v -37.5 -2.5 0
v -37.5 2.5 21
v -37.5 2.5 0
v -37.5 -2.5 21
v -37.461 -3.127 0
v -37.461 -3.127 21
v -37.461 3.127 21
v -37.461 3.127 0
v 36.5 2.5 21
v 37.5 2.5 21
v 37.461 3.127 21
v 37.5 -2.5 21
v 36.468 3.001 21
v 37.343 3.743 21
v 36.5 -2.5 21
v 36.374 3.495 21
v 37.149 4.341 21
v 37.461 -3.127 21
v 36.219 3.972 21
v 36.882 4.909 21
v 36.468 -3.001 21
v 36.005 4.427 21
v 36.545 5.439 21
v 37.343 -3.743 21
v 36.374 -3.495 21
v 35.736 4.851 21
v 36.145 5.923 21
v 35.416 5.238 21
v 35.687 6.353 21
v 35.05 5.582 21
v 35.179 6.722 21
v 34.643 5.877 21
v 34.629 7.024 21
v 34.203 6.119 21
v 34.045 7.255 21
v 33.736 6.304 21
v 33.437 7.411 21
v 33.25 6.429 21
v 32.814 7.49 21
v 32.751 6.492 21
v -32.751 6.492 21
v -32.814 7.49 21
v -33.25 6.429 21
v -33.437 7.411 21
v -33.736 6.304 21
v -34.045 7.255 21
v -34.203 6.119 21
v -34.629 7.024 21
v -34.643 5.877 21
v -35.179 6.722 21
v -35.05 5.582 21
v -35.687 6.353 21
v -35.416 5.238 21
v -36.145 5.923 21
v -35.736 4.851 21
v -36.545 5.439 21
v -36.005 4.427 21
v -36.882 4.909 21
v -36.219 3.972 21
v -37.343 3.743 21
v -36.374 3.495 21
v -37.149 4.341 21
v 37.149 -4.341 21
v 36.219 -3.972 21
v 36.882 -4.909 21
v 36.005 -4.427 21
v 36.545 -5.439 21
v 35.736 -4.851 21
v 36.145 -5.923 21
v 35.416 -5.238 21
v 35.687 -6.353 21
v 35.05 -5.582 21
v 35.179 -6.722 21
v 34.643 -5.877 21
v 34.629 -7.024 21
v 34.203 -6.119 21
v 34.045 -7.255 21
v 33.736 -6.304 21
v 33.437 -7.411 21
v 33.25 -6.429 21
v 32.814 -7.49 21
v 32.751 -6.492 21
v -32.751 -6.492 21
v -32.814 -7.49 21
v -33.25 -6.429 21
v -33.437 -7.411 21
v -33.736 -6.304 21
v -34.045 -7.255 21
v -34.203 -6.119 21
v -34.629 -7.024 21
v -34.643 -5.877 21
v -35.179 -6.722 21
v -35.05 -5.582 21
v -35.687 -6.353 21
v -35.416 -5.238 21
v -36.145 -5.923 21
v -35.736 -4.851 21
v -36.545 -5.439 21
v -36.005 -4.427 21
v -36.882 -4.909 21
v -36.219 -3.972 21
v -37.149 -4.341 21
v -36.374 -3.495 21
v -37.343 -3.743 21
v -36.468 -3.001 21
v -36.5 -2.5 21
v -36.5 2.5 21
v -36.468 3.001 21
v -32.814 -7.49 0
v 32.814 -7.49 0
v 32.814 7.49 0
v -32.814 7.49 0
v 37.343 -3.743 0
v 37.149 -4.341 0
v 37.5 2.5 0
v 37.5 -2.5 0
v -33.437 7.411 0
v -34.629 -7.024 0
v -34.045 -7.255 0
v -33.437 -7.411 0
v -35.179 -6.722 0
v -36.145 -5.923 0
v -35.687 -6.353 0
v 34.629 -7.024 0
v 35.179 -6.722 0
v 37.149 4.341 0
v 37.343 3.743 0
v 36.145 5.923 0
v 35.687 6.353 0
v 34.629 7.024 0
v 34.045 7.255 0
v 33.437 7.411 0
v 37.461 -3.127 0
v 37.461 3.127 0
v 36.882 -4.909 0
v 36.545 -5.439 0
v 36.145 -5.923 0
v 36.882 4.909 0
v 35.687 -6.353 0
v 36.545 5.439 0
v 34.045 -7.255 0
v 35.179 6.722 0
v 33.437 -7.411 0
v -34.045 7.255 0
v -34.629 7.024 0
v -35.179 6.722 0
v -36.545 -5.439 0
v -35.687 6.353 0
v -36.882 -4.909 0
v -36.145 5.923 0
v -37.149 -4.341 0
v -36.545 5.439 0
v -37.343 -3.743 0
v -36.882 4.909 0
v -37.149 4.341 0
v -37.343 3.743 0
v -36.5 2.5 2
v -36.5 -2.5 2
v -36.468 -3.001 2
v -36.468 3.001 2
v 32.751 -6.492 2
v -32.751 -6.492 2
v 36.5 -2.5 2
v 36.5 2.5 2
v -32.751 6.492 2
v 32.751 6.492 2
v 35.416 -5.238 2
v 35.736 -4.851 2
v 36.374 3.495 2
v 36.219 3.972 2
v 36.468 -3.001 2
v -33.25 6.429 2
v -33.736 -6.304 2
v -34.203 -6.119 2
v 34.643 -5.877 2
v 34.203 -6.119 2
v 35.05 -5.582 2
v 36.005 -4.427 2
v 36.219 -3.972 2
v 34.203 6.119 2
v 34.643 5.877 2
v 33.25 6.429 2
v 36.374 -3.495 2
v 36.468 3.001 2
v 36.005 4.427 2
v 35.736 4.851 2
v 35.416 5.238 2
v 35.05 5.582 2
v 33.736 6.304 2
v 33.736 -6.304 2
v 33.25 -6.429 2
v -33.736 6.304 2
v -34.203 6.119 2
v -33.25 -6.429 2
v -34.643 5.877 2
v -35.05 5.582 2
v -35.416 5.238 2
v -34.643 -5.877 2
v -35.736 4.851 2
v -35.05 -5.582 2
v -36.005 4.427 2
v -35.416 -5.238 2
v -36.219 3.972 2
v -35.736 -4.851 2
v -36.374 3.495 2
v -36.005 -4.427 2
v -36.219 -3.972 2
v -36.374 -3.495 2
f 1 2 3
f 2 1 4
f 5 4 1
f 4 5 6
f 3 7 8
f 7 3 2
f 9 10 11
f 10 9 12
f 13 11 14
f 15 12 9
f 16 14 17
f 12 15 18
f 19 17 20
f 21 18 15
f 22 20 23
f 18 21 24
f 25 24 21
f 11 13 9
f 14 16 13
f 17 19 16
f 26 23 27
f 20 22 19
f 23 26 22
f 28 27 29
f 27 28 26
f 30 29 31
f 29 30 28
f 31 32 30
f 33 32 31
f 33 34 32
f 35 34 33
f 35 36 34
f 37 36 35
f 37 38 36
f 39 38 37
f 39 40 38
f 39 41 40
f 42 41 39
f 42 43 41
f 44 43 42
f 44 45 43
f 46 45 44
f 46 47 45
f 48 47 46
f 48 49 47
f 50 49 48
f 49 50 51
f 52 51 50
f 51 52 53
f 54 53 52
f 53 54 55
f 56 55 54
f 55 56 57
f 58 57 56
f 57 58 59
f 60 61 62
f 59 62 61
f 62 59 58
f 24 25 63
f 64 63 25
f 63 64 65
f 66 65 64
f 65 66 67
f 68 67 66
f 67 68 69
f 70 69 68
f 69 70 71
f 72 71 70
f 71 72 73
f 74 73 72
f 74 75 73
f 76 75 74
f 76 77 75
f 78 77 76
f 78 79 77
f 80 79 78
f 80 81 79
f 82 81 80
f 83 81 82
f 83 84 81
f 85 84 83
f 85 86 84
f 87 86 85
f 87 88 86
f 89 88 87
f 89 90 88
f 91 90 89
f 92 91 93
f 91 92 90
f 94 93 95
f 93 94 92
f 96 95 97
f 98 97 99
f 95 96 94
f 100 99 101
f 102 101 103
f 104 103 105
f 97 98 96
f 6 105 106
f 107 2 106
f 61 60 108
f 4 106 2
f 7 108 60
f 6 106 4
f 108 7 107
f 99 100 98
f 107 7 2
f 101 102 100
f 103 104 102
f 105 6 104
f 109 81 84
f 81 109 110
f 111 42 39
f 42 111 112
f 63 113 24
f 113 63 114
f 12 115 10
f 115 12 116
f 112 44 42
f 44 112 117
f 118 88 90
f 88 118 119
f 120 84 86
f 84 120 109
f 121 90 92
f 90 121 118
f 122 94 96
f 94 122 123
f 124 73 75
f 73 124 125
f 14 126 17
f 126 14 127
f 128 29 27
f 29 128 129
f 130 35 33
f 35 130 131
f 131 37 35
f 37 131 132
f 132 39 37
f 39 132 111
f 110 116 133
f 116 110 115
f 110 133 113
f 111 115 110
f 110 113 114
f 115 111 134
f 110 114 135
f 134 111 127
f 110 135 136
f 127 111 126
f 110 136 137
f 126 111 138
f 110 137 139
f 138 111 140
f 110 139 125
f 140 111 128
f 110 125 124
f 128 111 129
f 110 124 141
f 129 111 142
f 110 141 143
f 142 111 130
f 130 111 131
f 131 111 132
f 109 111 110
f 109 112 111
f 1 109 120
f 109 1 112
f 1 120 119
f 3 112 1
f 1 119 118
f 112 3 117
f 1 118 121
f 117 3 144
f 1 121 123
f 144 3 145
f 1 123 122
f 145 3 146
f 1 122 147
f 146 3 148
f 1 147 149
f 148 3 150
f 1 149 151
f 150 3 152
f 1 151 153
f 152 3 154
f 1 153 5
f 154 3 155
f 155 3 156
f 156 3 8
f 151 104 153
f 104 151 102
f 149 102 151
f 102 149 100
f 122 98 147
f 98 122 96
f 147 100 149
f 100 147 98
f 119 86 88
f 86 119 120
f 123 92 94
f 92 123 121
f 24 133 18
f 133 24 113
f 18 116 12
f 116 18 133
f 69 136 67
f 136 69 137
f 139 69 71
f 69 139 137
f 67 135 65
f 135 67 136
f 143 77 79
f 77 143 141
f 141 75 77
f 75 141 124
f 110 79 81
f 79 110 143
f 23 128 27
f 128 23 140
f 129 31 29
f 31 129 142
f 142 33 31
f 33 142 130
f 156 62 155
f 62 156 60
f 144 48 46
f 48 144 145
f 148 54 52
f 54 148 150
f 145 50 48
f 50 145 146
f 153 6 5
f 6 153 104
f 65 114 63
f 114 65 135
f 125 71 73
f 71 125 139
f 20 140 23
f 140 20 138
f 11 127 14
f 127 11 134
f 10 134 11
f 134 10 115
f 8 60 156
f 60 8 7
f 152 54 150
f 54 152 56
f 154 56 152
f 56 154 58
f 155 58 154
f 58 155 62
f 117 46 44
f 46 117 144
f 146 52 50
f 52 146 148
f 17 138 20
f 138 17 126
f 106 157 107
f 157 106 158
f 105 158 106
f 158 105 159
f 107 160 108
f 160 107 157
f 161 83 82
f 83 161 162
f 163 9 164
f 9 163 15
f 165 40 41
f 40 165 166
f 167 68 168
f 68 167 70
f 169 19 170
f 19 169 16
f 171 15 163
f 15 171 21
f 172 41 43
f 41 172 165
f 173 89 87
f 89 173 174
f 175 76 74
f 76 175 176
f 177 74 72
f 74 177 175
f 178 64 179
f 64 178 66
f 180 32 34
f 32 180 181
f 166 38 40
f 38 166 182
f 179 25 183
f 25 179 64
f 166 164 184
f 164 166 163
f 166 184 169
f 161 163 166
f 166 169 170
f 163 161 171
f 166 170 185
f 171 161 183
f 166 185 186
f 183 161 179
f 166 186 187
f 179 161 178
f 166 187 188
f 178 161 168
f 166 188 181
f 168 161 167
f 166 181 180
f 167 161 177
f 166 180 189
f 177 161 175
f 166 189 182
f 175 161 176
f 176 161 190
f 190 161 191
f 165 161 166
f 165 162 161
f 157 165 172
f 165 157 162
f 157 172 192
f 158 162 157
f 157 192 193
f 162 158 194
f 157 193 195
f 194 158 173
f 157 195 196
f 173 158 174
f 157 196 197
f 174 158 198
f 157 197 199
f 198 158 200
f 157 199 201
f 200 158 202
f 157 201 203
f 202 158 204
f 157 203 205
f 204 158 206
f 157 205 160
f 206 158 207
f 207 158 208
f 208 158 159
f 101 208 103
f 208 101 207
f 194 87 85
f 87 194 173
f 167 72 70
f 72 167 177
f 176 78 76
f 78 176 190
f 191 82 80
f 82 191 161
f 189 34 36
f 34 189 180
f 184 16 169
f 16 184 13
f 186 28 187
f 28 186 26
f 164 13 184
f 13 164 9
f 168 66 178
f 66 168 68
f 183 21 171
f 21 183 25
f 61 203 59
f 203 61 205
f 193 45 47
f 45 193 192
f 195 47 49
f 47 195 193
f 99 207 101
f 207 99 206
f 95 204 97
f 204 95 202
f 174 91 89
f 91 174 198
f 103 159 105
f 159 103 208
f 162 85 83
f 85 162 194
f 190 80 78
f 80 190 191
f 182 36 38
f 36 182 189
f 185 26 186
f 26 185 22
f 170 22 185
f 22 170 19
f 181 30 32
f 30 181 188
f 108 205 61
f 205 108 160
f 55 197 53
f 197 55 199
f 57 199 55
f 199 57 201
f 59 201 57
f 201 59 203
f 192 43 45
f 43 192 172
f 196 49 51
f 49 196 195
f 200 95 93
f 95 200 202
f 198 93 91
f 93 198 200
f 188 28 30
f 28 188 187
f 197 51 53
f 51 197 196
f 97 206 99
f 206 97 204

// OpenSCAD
$fn = 50;


difference() {
	union() {
		hull() {
			translate(v = [-32.5000000000, 2.5000000000, 0]) {
				cylinder(h = 21, r = 5);
			}
			translate(v = [32.5000000000, 2.5000000000, 0]) {
				cylinder(h = 21, r = 5);
			}
			translate(v = [-32.5000000000, -2.5000000000, 0]) {
				cylinder(h = 21, r = 5);
			}
			translate(v = [32.5000000000, -2.5000000000, 0]) {
				cylinder(h = 21, r = 5);
			}
		}
	}
	union() {
		translate(v = [0, 0, 2]) {
			hull() {
				translate(v = [-32.5000000000, 2.5000000000, 0]) {
					cylinder(h = 19, r = 4);
				}
				translate(v = [32.5000000000, 2.5000000000, 0]) {
					cylinder(h = 19, r = 4);
				}
				translate(v = [-32.5000000000, -2.5000000000, 0]) {
					cylinder(h = 19, r = 4);
				}
				translate(v = [32.5000000000, -2.5000000000, 0]) {
					cylinder(h = 19, r = 4);
				}
			}
		}
	}
}
